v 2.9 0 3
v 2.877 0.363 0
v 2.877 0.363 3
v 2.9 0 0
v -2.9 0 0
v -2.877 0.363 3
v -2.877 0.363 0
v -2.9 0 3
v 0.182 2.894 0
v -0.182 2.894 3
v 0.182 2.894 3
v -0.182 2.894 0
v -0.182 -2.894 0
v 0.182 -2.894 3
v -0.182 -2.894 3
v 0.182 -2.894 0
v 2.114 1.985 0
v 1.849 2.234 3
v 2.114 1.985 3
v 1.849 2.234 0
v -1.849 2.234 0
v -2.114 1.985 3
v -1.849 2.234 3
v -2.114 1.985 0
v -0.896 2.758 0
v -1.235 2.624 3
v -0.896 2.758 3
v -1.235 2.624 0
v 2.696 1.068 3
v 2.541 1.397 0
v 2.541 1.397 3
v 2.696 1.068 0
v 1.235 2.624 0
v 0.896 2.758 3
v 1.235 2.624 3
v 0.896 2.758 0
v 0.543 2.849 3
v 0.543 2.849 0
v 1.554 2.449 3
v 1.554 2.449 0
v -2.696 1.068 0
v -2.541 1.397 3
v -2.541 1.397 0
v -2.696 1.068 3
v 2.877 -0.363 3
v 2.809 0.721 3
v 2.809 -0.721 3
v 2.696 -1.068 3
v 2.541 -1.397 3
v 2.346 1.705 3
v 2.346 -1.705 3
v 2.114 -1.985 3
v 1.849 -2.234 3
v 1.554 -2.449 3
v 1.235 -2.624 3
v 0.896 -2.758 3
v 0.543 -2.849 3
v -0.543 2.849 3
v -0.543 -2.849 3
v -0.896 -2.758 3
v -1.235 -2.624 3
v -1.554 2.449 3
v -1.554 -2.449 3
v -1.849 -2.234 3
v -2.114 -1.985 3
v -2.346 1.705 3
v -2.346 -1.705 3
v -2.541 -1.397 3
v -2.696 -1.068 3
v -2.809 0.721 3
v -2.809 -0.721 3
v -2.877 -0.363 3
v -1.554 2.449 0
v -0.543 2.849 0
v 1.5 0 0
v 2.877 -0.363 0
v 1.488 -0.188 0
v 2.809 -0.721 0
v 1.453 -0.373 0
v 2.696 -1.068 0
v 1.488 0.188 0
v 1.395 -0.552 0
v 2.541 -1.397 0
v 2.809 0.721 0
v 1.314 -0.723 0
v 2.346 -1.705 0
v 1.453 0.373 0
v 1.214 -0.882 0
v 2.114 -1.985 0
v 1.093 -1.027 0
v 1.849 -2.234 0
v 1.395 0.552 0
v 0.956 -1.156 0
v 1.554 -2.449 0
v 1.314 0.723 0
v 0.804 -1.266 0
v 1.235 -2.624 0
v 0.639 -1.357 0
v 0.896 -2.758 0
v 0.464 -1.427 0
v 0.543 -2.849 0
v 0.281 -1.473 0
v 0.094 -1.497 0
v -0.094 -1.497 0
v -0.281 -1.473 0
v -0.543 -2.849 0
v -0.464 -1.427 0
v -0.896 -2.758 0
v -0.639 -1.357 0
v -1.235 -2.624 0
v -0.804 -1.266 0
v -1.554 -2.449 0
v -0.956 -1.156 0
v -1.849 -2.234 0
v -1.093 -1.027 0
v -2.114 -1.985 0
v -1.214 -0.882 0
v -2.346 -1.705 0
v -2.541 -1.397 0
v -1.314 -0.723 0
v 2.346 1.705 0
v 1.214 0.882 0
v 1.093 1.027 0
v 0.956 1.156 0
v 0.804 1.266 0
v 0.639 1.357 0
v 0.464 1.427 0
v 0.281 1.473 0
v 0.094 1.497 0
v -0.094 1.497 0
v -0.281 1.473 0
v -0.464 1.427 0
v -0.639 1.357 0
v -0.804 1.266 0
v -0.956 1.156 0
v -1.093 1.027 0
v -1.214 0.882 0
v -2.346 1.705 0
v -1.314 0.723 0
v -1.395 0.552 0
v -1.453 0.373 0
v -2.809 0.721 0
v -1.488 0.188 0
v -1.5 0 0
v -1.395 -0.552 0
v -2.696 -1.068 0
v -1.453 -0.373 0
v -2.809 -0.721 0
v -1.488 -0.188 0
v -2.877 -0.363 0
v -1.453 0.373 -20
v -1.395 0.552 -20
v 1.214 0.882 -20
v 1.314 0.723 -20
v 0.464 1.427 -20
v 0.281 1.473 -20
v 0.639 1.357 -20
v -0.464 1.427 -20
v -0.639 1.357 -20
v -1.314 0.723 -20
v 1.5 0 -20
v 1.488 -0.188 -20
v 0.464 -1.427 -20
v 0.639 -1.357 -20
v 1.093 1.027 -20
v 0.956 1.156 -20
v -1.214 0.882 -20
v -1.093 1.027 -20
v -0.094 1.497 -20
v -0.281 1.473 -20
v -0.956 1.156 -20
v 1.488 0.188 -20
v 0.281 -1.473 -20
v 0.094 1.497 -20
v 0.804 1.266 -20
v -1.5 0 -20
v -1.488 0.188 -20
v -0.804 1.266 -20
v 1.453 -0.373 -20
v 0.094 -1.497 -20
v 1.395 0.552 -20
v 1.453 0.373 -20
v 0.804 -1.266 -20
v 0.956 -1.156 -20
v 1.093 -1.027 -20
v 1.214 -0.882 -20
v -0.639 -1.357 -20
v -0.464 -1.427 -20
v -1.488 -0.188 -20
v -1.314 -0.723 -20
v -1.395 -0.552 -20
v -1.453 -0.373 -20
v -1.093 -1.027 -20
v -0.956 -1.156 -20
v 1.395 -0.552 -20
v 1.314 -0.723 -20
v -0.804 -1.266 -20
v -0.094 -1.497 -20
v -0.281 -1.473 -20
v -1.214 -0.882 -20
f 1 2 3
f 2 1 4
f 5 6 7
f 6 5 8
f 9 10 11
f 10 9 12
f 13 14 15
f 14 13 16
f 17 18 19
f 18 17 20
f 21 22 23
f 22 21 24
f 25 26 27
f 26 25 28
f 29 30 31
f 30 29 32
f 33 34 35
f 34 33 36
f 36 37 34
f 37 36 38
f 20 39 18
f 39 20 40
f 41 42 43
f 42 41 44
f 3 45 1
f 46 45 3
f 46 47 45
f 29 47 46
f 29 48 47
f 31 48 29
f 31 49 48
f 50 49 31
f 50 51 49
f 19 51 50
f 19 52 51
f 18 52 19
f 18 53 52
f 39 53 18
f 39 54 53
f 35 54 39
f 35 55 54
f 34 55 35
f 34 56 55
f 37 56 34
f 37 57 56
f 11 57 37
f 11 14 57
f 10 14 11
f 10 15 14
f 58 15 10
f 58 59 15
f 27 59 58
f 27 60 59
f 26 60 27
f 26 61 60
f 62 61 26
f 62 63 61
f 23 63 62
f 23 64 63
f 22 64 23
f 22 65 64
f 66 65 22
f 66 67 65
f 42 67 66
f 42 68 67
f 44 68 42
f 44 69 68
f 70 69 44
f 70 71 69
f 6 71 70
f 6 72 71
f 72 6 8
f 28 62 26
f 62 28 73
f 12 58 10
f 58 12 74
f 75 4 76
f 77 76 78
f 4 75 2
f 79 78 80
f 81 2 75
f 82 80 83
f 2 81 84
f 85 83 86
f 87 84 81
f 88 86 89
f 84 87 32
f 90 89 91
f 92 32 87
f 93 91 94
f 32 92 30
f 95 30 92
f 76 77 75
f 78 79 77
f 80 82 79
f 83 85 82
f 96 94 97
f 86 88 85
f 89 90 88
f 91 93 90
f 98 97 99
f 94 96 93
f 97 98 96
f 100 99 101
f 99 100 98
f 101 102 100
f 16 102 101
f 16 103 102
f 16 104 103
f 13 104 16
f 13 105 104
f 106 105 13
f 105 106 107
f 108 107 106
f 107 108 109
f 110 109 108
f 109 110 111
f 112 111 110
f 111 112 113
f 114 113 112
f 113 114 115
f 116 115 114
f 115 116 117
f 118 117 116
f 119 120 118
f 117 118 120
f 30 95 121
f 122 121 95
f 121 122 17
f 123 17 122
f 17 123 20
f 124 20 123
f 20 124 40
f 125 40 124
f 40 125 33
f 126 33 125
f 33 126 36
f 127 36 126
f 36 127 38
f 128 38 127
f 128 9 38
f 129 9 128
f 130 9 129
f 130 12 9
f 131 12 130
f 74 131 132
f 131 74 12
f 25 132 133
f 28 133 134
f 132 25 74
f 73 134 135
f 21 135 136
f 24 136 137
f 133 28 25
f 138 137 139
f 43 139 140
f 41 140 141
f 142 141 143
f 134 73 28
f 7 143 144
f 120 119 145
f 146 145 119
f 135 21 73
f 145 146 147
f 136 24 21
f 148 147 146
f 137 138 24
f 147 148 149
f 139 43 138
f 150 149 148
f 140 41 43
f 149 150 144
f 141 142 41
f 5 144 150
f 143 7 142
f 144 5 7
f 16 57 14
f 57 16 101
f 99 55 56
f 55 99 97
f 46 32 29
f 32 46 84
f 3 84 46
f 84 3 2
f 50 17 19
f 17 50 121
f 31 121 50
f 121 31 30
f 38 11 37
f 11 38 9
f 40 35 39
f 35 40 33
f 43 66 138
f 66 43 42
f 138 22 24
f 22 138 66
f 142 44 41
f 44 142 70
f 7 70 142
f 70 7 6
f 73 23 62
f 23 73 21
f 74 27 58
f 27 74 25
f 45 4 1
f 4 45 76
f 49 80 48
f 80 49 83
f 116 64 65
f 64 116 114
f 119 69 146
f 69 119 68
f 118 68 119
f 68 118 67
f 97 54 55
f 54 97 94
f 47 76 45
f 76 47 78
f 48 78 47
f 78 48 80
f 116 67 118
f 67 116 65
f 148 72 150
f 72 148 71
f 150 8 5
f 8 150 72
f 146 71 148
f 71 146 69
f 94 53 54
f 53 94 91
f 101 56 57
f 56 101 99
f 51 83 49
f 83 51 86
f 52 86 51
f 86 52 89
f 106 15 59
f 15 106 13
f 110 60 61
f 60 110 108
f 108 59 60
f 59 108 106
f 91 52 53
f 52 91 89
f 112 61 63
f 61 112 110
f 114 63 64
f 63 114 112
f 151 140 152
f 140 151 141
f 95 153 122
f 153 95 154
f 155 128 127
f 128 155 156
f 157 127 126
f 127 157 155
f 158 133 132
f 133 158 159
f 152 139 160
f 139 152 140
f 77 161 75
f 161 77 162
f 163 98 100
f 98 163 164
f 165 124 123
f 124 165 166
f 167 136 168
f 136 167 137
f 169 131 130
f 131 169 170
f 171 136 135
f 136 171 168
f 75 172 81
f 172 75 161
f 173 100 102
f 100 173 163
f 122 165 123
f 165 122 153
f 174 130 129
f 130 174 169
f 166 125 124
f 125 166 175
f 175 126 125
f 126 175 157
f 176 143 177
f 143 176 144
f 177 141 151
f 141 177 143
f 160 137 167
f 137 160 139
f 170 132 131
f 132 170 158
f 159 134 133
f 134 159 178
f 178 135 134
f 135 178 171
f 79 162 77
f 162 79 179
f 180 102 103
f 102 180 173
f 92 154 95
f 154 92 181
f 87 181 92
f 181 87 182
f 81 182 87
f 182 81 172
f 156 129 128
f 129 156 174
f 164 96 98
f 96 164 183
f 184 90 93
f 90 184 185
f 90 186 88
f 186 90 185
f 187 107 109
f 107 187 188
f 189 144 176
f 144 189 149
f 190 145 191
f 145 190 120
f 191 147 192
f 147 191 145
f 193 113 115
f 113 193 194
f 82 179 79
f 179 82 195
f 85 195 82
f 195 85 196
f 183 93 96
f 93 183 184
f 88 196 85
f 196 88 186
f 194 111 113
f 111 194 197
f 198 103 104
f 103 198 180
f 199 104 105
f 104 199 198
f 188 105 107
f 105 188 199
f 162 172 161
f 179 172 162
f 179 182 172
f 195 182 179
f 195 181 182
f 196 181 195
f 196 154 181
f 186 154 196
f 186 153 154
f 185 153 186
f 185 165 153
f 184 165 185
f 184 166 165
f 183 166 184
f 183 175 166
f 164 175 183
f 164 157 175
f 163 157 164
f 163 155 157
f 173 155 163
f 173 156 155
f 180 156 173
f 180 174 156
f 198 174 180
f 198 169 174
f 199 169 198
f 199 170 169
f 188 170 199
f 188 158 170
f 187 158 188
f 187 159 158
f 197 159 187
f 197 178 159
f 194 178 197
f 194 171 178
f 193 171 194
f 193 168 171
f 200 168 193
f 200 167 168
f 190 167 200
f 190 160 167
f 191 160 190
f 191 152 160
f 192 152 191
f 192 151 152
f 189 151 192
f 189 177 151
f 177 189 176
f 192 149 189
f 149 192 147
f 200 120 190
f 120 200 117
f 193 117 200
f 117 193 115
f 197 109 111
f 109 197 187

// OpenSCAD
$fn = 50;


difference() {
	union() {
		translate(v = [0, 0, 0]) {
			rotate(a = [0, 0, 0]) {
				cylinder(h = 3, r = 2.9000000000);
			}
		}
		translate(v = [0, 0, -20]) {
			rotate(a = [0, 0, 0]) {
				cylinder(h = 20, r = 1.5000000000);
			}
		}
	}
	union();
}
